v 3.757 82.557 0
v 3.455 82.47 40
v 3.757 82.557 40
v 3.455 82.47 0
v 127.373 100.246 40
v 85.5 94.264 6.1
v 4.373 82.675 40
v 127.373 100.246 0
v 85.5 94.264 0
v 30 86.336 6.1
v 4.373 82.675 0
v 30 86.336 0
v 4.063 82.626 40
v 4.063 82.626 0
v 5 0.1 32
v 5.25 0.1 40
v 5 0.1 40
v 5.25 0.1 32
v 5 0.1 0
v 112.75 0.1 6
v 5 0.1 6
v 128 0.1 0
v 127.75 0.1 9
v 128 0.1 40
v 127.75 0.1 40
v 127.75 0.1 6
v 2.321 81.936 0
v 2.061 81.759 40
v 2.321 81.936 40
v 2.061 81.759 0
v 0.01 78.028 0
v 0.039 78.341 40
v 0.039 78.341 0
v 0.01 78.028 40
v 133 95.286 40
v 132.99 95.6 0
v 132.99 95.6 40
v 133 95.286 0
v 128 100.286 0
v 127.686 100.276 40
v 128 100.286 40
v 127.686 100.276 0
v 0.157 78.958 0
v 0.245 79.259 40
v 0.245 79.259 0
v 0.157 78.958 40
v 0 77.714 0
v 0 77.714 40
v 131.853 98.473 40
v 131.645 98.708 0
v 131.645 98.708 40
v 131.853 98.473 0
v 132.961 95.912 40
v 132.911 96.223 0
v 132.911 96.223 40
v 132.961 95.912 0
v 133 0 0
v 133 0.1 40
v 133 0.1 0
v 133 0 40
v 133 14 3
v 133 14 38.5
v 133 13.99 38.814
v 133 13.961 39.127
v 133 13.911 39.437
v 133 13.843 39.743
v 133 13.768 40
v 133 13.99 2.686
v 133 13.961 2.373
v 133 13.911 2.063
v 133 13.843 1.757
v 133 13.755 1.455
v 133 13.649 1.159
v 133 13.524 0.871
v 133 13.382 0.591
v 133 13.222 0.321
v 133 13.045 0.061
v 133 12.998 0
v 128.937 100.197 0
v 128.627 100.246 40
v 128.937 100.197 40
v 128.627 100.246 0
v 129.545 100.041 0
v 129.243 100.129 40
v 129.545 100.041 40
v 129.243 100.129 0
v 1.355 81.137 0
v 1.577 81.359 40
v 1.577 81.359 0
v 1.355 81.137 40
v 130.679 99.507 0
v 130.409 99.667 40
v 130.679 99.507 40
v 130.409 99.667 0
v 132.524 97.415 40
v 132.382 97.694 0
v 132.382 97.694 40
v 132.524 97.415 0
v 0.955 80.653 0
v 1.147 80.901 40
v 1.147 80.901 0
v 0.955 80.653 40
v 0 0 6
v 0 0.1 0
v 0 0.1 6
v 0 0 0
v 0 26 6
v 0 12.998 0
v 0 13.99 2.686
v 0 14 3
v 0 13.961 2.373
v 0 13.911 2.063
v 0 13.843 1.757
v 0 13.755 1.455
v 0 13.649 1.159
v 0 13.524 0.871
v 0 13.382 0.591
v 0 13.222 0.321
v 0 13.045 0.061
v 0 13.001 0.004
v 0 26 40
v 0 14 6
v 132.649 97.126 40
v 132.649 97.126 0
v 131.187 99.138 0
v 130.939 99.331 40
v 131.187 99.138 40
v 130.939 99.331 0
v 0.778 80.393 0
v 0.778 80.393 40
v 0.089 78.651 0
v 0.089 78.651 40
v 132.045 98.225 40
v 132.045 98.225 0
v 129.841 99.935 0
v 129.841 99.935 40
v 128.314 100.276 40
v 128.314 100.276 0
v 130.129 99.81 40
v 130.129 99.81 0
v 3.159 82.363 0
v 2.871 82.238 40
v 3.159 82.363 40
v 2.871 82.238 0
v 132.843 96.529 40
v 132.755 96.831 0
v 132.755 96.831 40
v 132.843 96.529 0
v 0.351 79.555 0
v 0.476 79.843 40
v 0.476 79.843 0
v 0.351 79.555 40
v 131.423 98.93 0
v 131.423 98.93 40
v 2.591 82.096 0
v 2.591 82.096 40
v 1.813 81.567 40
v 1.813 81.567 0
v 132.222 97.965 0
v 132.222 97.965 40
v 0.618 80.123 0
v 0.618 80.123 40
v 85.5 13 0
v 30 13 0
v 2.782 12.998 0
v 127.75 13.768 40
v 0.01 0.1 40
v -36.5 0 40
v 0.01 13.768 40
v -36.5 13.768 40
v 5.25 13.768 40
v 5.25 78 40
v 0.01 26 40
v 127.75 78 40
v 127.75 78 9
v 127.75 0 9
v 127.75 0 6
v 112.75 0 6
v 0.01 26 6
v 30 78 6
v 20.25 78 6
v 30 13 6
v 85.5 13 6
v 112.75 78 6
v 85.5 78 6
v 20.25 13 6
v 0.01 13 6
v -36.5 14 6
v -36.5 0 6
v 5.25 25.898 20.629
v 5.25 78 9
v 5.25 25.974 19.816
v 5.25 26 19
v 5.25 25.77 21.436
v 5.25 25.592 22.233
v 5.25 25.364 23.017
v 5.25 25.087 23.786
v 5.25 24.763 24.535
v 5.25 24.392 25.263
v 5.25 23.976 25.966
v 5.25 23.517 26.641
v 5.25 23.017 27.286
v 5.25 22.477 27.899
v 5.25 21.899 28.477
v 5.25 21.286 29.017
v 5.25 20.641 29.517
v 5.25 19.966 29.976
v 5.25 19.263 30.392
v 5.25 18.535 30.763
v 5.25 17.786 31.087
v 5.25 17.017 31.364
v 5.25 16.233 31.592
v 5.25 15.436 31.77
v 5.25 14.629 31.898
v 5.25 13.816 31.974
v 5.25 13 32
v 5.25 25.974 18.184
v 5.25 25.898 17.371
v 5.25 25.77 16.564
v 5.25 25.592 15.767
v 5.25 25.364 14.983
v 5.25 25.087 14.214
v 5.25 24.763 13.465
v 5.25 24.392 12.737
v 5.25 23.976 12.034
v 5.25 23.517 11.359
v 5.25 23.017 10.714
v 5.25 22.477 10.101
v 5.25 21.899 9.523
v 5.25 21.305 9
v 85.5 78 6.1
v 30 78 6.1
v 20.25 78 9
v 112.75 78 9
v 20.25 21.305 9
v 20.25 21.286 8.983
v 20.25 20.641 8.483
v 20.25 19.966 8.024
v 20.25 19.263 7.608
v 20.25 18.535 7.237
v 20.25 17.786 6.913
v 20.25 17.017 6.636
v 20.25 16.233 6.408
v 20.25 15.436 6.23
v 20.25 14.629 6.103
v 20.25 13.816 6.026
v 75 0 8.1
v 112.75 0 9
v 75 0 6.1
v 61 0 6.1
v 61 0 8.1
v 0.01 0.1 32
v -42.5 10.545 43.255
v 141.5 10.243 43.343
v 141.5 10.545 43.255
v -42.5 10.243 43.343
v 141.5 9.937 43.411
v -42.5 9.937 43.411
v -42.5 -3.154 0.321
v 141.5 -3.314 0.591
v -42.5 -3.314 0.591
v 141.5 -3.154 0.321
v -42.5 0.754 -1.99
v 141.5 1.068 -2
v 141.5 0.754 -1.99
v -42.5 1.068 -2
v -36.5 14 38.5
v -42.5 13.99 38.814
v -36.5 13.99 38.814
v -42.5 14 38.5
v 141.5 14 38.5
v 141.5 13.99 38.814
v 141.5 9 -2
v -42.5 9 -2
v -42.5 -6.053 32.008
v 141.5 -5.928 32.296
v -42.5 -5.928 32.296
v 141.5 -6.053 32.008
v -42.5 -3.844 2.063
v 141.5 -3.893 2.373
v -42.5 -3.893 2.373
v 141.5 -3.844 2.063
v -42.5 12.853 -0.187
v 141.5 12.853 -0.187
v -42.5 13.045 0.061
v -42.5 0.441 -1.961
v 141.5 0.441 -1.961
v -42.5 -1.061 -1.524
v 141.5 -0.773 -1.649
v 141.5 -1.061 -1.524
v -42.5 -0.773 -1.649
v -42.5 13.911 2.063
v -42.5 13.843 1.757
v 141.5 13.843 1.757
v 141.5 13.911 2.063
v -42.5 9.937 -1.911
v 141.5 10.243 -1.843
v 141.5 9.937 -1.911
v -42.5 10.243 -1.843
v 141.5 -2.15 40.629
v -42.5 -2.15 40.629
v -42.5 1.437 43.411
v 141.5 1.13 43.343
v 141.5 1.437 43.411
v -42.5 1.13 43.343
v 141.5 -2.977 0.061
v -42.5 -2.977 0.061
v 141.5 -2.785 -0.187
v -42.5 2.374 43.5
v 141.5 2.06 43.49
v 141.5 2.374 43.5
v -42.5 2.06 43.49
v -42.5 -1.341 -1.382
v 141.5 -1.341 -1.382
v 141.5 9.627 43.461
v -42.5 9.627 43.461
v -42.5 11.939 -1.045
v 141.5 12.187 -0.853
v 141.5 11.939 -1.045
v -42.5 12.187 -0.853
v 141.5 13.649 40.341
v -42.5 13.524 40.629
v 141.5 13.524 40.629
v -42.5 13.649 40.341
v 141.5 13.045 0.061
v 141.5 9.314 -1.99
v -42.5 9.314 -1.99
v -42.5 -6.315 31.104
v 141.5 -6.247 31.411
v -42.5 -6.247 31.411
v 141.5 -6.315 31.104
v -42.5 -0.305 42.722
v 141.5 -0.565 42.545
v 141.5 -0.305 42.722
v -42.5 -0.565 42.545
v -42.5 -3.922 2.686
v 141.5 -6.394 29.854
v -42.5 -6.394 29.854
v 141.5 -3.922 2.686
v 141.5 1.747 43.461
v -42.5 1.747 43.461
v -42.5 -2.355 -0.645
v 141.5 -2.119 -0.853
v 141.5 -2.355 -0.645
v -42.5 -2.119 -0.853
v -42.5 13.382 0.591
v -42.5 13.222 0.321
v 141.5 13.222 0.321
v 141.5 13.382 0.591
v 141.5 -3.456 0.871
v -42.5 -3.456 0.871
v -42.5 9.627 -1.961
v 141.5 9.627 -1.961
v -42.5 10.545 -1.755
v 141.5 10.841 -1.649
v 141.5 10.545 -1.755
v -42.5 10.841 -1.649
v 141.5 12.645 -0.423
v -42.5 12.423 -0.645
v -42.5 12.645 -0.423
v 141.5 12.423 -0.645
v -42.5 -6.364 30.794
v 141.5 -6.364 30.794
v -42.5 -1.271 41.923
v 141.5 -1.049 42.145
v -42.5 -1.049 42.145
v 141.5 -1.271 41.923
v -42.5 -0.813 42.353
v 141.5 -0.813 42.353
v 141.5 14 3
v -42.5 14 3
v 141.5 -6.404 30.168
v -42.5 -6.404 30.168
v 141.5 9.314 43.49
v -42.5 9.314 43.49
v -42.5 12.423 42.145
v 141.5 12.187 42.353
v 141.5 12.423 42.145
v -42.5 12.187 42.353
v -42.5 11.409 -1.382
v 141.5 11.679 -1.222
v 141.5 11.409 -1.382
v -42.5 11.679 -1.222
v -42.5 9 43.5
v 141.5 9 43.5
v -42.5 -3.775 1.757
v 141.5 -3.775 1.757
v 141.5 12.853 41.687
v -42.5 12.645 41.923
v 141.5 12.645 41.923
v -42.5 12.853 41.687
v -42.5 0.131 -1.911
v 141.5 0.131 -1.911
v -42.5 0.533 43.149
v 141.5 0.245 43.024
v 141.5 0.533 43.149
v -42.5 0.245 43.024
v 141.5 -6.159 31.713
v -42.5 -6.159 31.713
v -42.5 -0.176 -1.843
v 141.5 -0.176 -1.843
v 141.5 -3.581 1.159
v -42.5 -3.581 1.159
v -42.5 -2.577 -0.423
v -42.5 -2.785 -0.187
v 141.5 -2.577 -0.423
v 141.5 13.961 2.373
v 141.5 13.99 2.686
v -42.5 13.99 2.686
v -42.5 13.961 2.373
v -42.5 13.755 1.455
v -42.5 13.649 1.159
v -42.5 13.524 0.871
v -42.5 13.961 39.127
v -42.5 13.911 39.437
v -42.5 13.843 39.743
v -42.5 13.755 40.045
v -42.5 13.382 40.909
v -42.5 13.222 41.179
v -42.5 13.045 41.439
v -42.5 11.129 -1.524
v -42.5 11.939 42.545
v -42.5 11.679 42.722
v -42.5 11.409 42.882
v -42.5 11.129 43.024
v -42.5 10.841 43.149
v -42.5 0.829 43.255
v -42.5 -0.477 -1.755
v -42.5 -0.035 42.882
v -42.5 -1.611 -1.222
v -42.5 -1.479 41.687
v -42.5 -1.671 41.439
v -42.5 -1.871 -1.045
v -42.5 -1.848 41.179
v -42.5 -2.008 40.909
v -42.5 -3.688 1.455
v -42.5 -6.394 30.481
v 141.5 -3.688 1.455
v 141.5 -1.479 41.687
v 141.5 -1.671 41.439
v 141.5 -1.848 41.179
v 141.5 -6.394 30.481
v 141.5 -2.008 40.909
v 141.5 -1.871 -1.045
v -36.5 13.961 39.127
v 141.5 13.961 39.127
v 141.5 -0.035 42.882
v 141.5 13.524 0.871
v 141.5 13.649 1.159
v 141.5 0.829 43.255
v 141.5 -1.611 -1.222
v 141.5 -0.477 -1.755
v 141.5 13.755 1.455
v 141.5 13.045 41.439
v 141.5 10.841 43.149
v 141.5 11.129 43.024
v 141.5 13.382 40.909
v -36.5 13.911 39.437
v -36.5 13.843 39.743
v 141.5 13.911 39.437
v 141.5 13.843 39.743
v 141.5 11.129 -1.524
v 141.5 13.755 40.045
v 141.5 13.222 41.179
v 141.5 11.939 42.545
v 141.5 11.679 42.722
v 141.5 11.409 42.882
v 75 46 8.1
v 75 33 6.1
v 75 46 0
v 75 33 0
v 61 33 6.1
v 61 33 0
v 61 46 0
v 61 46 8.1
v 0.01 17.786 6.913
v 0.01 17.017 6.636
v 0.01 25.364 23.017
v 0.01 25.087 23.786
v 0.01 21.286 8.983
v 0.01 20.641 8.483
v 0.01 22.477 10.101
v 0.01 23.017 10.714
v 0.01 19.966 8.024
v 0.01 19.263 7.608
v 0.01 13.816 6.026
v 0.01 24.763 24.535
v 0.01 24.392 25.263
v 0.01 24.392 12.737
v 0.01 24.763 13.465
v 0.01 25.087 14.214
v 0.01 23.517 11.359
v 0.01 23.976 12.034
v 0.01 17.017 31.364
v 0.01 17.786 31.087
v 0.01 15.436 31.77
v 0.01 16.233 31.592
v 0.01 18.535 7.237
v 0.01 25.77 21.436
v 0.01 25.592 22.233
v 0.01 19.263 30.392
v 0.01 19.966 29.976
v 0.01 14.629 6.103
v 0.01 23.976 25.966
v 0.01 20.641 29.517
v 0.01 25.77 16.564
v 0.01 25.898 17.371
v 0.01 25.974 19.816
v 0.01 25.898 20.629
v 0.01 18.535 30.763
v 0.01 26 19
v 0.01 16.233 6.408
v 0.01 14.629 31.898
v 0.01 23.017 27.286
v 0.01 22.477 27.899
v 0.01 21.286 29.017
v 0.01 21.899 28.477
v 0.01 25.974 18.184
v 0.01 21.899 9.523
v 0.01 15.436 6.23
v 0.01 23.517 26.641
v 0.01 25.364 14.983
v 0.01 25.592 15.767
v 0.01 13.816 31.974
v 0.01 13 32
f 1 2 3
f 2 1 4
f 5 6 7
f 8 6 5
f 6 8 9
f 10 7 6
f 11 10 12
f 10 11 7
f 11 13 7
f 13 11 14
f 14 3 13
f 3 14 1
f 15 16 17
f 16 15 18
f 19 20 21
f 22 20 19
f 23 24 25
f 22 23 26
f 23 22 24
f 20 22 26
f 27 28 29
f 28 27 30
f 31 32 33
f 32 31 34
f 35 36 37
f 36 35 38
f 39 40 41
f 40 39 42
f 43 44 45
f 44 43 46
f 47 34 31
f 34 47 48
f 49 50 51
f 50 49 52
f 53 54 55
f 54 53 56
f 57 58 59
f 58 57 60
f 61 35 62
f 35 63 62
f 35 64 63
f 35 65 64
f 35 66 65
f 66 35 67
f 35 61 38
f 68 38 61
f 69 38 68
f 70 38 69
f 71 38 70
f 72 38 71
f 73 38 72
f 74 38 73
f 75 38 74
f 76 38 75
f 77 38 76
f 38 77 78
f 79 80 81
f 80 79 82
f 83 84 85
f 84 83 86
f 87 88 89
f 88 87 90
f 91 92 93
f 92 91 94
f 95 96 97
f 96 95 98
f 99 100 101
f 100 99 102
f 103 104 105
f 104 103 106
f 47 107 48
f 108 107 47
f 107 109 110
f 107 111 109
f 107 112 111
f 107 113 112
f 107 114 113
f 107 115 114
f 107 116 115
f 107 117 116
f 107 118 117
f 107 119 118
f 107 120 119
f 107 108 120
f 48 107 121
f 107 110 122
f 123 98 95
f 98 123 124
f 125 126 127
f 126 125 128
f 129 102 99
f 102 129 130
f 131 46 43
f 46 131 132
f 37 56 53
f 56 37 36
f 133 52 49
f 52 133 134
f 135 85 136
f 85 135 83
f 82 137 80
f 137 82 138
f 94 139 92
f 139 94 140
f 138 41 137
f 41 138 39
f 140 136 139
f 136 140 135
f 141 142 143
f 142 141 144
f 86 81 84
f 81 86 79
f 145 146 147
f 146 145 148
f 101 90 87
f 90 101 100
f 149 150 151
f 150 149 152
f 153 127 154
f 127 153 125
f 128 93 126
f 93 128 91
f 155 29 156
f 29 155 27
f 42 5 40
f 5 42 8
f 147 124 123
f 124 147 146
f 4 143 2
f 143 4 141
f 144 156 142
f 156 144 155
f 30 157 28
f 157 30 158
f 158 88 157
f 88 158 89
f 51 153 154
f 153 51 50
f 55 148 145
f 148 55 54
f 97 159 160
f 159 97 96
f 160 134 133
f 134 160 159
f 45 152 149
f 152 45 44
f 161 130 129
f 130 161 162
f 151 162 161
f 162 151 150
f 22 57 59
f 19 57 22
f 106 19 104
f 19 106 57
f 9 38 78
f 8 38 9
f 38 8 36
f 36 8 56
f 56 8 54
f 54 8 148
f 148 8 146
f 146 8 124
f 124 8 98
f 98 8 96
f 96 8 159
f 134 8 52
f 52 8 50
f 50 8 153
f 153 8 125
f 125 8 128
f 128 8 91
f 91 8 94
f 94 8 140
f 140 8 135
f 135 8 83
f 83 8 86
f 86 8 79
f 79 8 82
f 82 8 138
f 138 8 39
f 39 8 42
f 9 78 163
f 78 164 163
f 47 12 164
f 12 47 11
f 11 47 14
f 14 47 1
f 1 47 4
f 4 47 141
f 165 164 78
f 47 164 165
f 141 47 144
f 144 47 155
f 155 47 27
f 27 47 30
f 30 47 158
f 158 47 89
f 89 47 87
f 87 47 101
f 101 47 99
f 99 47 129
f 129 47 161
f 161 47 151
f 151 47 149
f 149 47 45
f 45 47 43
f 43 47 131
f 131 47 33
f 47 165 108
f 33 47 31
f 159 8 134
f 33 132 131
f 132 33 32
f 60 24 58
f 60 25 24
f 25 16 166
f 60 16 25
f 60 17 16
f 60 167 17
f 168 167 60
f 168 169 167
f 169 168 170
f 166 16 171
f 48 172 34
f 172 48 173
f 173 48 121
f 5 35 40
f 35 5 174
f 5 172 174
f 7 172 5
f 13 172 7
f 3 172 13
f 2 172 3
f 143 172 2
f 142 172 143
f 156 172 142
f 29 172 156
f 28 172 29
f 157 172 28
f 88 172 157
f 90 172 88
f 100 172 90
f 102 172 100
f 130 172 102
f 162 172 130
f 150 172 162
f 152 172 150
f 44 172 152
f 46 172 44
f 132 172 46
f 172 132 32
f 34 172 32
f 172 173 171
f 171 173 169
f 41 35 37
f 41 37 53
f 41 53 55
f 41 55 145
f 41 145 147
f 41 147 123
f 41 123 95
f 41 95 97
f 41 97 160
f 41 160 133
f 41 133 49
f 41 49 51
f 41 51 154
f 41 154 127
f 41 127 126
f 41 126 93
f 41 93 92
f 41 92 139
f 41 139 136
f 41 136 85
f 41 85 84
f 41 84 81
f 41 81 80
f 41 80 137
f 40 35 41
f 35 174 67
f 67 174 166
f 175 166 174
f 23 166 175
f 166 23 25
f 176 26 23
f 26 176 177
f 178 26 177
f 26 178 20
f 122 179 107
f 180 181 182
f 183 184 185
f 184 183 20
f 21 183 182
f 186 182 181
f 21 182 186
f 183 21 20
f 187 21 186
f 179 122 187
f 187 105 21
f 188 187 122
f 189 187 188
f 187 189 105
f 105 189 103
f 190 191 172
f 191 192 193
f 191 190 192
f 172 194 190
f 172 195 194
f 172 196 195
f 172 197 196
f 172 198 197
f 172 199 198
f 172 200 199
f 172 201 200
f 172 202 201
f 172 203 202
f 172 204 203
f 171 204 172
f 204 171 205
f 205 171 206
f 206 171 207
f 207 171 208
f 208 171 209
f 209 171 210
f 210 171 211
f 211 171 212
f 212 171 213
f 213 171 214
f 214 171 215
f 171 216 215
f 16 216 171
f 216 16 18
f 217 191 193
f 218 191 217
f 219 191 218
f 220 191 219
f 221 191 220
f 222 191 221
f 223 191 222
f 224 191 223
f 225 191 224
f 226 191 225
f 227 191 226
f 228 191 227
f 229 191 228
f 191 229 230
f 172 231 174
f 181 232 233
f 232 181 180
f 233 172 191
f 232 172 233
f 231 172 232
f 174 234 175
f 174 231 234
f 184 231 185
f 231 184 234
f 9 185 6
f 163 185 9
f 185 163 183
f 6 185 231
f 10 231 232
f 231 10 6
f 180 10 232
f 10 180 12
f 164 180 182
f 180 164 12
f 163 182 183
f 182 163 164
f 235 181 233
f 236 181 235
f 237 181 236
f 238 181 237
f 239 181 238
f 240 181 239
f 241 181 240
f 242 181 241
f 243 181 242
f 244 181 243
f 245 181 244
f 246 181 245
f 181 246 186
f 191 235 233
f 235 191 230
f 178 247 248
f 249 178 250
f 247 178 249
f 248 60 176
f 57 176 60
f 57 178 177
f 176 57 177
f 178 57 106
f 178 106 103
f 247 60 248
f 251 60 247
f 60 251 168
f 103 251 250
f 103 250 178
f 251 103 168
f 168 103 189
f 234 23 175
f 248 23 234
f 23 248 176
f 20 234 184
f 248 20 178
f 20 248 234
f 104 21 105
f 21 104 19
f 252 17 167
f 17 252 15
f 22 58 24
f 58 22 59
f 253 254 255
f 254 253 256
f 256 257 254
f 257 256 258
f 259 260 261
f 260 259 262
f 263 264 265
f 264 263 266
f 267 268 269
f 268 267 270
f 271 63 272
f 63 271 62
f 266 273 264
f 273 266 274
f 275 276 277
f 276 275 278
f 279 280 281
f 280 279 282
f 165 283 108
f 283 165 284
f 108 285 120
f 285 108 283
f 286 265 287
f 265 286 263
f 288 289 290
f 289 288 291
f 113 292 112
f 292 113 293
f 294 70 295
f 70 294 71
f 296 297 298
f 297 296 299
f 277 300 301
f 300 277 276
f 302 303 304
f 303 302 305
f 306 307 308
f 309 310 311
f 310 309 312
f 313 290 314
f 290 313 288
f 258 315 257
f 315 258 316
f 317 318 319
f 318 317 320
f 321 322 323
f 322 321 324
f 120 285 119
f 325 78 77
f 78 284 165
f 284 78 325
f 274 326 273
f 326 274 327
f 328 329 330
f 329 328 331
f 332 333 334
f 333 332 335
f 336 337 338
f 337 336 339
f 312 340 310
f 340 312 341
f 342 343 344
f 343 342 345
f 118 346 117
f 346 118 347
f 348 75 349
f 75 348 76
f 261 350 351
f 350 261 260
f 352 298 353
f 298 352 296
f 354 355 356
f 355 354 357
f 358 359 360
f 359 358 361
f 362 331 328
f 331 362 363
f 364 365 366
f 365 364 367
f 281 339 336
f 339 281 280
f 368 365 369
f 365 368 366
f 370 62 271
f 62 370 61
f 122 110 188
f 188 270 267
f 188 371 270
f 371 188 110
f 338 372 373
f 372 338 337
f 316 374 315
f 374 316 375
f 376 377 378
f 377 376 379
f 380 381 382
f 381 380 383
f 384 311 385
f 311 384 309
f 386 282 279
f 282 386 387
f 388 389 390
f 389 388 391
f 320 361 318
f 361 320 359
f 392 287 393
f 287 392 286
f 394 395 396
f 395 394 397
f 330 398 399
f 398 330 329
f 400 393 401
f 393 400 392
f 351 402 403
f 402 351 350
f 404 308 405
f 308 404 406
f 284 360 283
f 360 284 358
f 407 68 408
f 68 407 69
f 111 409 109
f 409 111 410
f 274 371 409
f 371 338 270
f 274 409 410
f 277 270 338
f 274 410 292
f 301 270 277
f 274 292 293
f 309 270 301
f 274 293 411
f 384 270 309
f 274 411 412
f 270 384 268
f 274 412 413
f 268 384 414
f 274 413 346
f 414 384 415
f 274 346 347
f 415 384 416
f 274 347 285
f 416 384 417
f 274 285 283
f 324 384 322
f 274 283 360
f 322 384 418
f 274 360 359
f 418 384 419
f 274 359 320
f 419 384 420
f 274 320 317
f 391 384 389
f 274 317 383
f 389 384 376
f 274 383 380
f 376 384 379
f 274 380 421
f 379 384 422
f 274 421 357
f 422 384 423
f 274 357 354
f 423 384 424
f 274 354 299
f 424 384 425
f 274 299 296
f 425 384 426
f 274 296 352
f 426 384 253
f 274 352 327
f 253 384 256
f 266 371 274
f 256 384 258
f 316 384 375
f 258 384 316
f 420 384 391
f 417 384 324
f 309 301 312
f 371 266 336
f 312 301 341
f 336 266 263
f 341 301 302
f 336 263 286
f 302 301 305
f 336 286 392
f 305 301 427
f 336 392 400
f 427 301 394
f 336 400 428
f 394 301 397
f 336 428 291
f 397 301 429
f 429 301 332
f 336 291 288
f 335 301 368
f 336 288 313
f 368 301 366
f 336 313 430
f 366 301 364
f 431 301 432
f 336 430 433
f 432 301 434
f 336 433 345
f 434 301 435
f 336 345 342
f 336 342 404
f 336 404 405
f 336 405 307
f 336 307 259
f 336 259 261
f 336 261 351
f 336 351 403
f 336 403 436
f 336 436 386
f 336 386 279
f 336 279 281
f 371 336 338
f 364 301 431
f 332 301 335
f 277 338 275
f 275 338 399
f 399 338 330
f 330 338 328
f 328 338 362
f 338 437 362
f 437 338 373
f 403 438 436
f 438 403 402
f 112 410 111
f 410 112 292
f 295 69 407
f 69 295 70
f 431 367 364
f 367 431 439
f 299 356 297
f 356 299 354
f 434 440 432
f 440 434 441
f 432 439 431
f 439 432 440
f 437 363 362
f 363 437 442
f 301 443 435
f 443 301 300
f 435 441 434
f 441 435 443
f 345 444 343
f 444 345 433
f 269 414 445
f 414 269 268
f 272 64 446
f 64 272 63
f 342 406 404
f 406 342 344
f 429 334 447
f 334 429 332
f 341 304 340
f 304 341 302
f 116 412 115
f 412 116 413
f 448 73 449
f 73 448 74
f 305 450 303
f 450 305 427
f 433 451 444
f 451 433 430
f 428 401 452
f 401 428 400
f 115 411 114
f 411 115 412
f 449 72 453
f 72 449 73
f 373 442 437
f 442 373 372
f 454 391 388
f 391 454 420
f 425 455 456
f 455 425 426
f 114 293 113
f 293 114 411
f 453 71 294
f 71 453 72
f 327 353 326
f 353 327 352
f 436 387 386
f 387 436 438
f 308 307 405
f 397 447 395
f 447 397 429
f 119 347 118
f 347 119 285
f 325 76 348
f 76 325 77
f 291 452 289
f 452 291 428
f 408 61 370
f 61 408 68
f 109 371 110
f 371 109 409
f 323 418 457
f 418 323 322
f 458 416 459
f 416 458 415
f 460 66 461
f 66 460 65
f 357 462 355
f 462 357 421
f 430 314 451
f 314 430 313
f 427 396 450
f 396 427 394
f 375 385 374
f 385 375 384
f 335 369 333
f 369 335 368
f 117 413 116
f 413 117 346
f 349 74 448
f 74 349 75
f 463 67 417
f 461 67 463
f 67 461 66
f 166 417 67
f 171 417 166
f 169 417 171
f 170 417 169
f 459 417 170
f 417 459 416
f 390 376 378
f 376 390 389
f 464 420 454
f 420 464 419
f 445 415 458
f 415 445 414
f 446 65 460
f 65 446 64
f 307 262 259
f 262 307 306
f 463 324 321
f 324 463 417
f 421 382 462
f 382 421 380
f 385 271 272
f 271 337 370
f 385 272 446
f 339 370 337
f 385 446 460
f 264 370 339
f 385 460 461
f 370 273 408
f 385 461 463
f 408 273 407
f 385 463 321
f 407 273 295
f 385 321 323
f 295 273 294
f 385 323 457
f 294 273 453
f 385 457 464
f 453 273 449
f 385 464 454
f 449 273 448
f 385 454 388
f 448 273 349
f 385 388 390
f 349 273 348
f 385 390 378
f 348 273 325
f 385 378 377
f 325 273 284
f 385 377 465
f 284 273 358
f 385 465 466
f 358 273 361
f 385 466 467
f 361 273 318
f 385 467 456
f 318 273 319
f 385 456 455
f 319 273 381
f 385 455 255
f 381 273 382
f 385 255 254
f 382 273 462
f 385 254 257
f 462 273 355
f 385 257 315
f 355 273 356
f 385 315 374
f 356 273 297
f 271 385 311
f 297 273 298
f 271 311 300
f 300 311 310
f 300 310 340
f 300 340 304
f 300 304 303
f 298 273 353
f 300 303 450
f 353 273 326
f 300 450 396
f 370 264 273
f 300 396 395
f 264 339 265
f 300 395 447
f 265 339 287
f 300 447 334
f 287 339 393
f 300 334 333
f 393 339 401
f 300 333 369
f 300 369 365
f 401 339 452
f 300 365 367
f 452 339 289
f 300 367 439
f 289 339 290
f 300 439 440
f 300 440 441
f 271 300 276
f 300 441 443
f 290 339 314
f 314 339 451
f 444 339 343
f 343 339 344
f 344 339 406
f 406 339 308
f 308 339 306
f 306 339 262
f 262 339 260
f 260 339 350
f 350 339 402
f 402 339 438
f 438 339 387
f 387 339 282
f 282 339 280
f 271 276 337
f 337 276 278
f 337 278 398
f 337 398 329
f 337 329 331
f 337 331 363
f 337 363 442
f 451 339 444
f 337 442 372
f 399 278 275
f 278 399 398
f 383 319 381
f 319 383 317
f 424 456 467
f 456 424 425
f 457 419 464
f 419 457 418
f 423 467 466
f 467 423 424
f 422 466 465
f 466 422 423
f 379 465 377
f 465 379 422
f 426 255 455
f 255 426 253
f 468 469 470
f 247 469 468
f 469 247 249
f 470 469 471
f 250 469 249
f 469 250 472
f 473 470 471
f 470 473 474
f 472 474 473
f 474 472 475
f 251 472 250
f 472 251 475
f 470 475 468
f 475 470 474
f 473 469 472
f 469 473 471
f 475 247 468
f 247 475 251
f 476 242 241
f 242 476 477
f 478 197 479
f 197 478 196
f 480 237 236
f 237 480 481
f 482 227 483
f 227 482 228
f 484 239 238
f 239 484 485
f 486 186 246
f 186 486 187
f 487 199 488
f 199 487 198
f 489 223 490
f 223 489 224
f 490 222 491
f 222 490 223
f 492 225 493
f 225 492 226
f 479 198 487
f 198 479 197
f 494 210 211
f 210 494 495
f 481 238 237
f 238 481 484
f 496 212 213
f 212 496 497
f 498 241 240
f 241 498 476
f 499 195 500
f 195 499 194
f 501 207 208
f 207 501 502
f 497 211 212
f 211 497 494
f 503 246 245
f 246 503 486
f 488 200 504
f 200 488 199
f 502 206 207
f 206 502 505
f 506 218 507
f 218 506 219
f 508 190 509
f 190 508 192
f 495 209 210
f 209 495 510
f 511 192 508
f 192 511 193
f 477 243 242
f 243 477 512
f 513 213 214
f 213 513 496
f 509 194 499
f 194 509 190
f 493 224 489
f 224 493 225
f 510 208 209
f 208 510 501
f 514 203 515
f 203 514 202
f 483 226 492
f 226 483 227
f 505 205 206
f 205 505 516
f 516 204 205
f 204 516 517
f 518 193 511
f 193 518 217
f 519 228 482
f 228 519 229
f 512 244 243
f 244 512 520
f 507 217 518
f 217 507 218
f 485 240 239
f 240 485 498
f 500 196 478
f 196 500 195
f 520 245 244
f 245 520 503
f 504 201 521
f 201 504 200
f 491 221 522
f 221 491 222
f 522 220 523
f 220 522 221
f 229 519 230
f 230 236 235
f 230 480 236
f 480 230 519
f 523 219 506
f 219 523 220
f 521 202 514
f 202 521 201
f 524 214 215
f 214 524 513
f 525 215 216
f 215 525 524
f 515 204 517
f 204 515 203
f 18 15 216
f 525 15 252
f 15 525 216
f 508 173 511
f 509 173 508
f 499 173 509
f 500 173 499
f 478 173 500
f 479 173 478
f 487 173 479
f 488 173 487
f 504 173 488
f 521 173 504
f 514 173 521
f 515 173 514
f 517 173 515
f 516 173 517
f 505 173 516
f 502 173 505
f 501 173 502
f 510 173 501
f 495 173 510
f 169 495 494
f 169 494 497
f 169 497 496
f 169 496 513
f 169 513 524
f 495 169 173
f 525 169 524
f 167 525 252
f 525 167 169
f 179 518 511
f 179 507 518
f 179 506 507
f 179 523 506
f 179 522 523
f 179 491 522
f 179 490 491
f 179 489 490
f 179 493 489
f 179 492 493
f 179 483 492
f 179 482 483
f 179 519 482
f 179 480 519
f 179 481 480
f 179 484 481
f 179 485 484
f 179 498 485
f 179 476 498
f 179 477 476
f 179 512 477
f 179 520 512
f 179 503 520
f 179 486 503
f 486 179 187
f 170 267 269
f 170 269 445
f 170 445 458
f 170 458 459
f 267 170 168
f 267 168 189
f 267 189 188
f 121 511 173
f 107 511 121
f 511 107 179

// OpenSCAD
/*
 *  Car Display Tray
 * 
 *  File:     carDisplayTray.scad
 *
 *  Software: OpenSCAD
 *  Version:  2015.03
 *
 *  https://gitlab.com/green-rab
 *  Markus Gutermann, Germany, created: 17.08.2022
 */


// resolution
_fn                = 100;

// fr - frame
fr_dim_x           = 133.0; //mm

fr_delta_y         =  14.0; //mm

fr_dim_y1          =  68.0 + fr_delta_y; //mm
fr_dim_y2          =  87.0 + fr_delta_y; //mm
fr_dim_z           =  40.0; //mm

fr_edge_r          =   5.0; //mm

fr_display_dim_x   = 122.5; //mm
fr_display_dim_y   =  78.0; //mm
fr_display_delta_z =   6.0; //mm

fr_rail_delta_x    =   1.5; //mm
fr_rail_pos_x1     =  31.5 - fr_rail_delta_x; //mm
fr_rail_pos_x2     = fr_rail_pos_x1 + 52.5 + (2 * fr_rail_delta_x); //mm
fr_rail_dim_z      =   6.1; //mm

fr_feet_dim_x      =  15.0; //mm
fr_feet_dim_z      =   3.0; //mm

// bd - board
bd_pos_x1          = -42.5; //mm
bd_pos_x2          =   8.5 + fr_dim_x; // mm

bd_pt1_pos_y       =   0.0; //mm
bd_pt1_pos_z       =  -2.0; //mm
bd_pt2_pos_y       = -17.5; //mm
bd_pt2_pos_z       =  -2.0; //mm
bd_pt3_pos_y       = -20.5; //mm
bd_pt3_pos_z       =  31.0; //mm
bd_pt4_pos_y       = -15.0; //mm
bd_pt4_pos_z       =  43.5; //mm
bd_pt5_pos_y       =   0.0; //mm
bd_pt5_pos_z       =  43.5; //mm

bd_edge_r          =   5.0; //mm

// st - slot
st_delta_x         =   3.0; //mm
st_delta_y         =   1.0; //mm

st_pos_x1          =  58.0 + st_delta_x; //mm
st_pos_x2          = st_pos_x1 + 20.0 - (2 * st_delta_x); //mm
st_pos_y1          =  32.0 + st_delta_y; //mm
st_pos_y2          = st_pos_y1 + 15.0 - (2 * st_delta_y); //mm

st_bar_dim_z       =   2.0; //mm

// hl - hole
hl_connector_d     =  26.0; //mm
h1_connector_dim_x = bd_pos_x1 + 6.0; //mm


// call module
carDisplayTray();


module carDisplayTray() {
    difference() {
        union() {
            // frame
            union() {
                difference() {
                    linear_extrude(height = fr_dim_z, convexity = 10) {
                        minkowski() {
                            tmp_dy = ((fr_dim_y2 - fr_dim_y1) / fr_dim_x) * fr_edge_r;

                            points = [
                                [fr_edge_r,            fr_edge_r+0.1],
                                [fr_edge_r,            fr_dim_y1 - fr_edge_r + tmp_dy],
                                [fr_dim_x - fr_edge_r, fr_dim_y2 - fr_edge_r - tmp_dy],
                                [fr_dim_x - fr_edge_r, fr_edge_r+0.1]
                            ];

                            polygon(points, convexity = 10);

                            circle(r = fr_edge_r, $fn = _fn);
                        }
                    }

                    // display
                    translate(v = [fr_dim_x/2 - fr_display_dim_x/2, 0, fr_display_delta_z]) {
                        cube(size = [fr_display_dim_x, fr_display_dim_y, fr_dim_z], center = false);
                    }

                    // rail
                    tmp_epsilon    = acos((bd_edge_r - abs(bd_pt1_pos_z)) / bd_edge_r);
                    tmp_rail_a     = sin(tmp_epsilon) * bd_edge_r;
                    tmp_rail_b     = bd_edge_r - tmp_rail_a;
                    tmp_rail_dim_y = fr_delta_y - tmp_rail_b;
                    translate(v = [fr_rail_pos_x1, tmp_rail_dim_y, -0.1]) {
                        cube(size = [fr_rail_pos_x2 - fr_rail_pos_x1, fr_dim_y2+0.2, fr_rail_dim_z+0.1], center = false);
                    }
                }

                // feet
                translate(v = [fr_dim_x/2 - fr_display_dim_x/2, 0, fr_display_delta_z]) {
                    cube(size = [fr_feet_dim_x, fr_display_dim_y, fr_feet_dim_z], center = false);
                }
                translate(v = [fr_dim_x/2 + fr_display_dim_x/2 - fr_feet_dim_x, 0, fr_display_delta_z]) {
                    cube(size = [fr_feet_dim_x, fr_display_dim_y, fr_feet_dim_z], center = false);
                }

                // remove rounded edges inside board
                translate(v = [0, 0.1, 0]) {
                    cube(size = [fr_edge_r, fr_edge_r, fr_dim_z], center = false);
                }
                translate(v = [fr_dim_x - fr_edge_r, 0.1, 0]) {
                    cube(size = [fr_edge_r, fr_edge_r, fr_dim_z], center = false);
                }
            }

            // board
            difference() {
                translate(v = [bd_pos_x2, fr_delta_y, 0]) {
                    rotate(a = -90, v = [0, 1, 0]) {
                        linear_extrude(height = (-bd_pos_x1) + bd_pos_x2, convexity = 10) {
                            minkowski() {
                                tmp_alpha      = atan((abs(bd_pt3_pos_y) - abs(bd_pt2_pos_y)) / (bd_pt3_pos_z - bd_pt2_pos_z));
                                tmp_gamma      = atan((abs(bd_pt4_pos_y) - abs(bd_pt3_pos_y)) / (bd_pt3_pos_z - bd_pt4_pos_z));

                                tmp_pt2_a      = cos(tmp_alpha) * bd_edge_r;
                                tmp_pt2_b      = sin(tmp_alpha) * bd_edge_r;
                                tmp_pt2_c      = sin(tmp_alpha) * (bd_edge_r - tmp_pt2_b);
                                tmp_pt2_pos_dy = tmp_pt2_a - tmp_pt2_c;

                                tmp_pt4_a      = cos(tmp_gamma) * bd_edge_r;
                                tmp_pt4_b      = sin(tmp_gamma) * bd_edge_r;
                                tmp_pt4_c      = sin(tmp_gamma) * (bd_edge_r - tmp_pt4_b);
                                tmp_pt4_pos_dy = tmp_pt4_a - tmp_pt4_c;

                                tmp_beta       = 180 - tmp_alpha - tmp_gamma;
                                tmp_pt3_a      = bd_edge_r / sin(tmp_beta / 2);
                                tmp_delta      = tmp_gamma + (tmp_beta / 2) - 90;
                                tmp_pt3_pos_dy = cos(tmp_delta) * tmp_pt3_a;
                                tmp_pt3_pos_dz = sin(tmp_delta) * tmp_pt3_a;

                                points = [
                                    [bd_pt1_pos_z + bd_edge_r,        bd_pt1_pos_y - bd_edge_r],
                                    [bd_pt2_pos_z + bd_edge_r,        bd_pt2_pos_y + tmp_pt2_pos_dy],
                                    [bd_pt3_pos_z - tmp_pt3_pos_dz,   bd_pt3_pos_y + tmp_pt3_pos_dy],
                                    [bd_pt4_pos_z - bd_edge_r,        bd_pt4_pos_y + tmp_pt4_pos_dy],
                                    [bd_pt5_pos_z - bd_edge_r,        bd_pt5_pos_y - bd_edge_r]
                                ];

                                polygon(points, convexity = 10);

                                circle(r = bd_edge_r, $fn = _fn);
                            }
                        }
                    }
                }

                // cut off for frame
                cube(size = [fr_dim_x, fr_delta_y+0.1, fr_dim_z], center = false);
            }

            // slot
            union() {
                // slot for fixation
                translate(v = [st_pos_x1, st_pos_y1, 0]) {
                    cube(size = [st_pos_x2-st_pos_x1, st_pos_y2-st_pos_y1, fr_rail_dim_z], center = false);
                }

                // bar
                translate(v = [st_pos_x1, 0, fr_rail_dim_z]) {
                    cube(size = [st_pos_x2-st_pos_x1, st_pos_y2, st_bar_dim_z], center = false);
                }
            }
        }

        // hole
        translate(v = [-0.1, hl_connector_d/2, fr_display_delta_z + hl_connector_d/2]) {
            rotate(a = 90, v = [0, 1, 0]) {
                cylinder(h = (fr_dim_x - fr_display_dim_x)/2 + fr_feet_dim_x + 0.2, d = hl_connector_d, center = false, $fn = _fn);
            }
        }

        // hole inside frame
        translate(v = [0, 0, fr_display_delta_z]) {
            cube(size = [(fr_dim_x - fr_display_dim_x)/2 + fr_feet_dim_x + 0.1, hl_connector_d/2, hl_connector_d], center = false);
        }

        // hole at board
        translate(v = [h1_connector_dim_x, 0, fr_display_delta_z]) {
            cube(size = [abs(h1_connector_dim_x) + 0.01, hl_connector_d, fr_dim_z - fr_display_delta_z], center = false);
        }
    }
}


/*
    end of carDisplayTray.scad
*/
